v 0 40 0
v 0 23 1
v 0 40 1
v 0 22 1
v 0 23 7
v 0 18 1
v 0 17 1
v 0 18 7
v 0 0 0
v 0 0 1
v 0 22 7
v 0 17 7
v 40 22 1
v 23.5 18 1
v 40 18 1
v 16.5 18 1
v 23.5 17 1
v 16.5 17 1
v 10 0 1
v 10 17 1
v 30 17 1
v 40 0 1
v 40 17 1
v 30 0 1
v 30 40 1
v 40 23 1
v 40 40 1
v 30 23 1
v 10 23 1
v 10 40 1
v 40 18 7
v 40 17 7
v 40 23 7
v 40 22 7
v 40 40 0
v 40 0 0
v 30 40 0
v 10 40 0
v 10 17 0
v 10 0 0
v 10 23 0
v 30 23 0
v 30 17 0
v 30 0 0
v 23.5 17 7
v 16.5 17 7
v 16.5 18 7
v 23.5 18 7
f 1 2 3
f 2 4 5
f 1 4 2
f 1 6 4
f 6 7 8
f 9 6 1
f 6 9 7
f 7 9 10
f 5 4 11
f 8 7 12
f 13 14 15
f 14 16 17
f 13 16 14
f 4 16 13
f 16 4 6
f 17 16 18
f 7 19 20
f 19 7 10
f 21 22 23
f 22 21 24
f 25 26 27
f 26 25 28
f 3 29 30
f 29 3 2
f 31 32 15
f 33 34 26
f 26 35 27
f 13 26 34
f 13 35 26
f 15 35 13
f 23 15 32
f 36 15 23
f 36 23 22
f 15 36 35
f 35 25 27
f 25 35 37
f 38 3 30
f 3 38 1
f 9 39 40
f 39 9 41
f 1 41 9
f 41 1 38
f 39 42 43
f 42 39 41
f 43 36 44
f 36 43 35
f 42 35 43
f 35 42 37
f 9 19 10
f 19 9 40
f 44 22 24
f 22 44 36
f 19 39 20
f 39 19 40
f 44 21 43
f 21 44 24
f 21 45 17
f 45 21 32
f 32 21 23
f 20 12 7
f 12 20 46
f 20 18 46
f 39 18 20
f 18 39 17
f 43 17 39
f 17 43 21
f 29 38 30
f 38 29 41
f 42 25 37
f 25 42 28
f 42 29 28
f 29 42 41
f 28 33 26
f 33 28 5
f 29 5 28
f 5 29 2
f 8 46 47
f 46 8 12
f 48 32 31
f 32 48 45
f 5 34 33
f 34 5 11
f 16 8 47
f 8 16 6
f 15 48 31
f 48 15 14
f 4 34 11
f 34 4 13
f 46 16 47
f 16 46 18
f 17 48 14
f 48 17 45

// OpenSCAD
difference() {
cube([40,40,1]);
translate([10,0,0]) cube([20,17,1]);
translate([10,23,0]) cube([20,17,1]);
}

difference() {
translate([0,17,0]) difference() {
cube([40,6,7]);
translate([0,1,1]) cube([40,4,9]);
}
translate([16.5,17,1]) cube([7,1,9]);
}
